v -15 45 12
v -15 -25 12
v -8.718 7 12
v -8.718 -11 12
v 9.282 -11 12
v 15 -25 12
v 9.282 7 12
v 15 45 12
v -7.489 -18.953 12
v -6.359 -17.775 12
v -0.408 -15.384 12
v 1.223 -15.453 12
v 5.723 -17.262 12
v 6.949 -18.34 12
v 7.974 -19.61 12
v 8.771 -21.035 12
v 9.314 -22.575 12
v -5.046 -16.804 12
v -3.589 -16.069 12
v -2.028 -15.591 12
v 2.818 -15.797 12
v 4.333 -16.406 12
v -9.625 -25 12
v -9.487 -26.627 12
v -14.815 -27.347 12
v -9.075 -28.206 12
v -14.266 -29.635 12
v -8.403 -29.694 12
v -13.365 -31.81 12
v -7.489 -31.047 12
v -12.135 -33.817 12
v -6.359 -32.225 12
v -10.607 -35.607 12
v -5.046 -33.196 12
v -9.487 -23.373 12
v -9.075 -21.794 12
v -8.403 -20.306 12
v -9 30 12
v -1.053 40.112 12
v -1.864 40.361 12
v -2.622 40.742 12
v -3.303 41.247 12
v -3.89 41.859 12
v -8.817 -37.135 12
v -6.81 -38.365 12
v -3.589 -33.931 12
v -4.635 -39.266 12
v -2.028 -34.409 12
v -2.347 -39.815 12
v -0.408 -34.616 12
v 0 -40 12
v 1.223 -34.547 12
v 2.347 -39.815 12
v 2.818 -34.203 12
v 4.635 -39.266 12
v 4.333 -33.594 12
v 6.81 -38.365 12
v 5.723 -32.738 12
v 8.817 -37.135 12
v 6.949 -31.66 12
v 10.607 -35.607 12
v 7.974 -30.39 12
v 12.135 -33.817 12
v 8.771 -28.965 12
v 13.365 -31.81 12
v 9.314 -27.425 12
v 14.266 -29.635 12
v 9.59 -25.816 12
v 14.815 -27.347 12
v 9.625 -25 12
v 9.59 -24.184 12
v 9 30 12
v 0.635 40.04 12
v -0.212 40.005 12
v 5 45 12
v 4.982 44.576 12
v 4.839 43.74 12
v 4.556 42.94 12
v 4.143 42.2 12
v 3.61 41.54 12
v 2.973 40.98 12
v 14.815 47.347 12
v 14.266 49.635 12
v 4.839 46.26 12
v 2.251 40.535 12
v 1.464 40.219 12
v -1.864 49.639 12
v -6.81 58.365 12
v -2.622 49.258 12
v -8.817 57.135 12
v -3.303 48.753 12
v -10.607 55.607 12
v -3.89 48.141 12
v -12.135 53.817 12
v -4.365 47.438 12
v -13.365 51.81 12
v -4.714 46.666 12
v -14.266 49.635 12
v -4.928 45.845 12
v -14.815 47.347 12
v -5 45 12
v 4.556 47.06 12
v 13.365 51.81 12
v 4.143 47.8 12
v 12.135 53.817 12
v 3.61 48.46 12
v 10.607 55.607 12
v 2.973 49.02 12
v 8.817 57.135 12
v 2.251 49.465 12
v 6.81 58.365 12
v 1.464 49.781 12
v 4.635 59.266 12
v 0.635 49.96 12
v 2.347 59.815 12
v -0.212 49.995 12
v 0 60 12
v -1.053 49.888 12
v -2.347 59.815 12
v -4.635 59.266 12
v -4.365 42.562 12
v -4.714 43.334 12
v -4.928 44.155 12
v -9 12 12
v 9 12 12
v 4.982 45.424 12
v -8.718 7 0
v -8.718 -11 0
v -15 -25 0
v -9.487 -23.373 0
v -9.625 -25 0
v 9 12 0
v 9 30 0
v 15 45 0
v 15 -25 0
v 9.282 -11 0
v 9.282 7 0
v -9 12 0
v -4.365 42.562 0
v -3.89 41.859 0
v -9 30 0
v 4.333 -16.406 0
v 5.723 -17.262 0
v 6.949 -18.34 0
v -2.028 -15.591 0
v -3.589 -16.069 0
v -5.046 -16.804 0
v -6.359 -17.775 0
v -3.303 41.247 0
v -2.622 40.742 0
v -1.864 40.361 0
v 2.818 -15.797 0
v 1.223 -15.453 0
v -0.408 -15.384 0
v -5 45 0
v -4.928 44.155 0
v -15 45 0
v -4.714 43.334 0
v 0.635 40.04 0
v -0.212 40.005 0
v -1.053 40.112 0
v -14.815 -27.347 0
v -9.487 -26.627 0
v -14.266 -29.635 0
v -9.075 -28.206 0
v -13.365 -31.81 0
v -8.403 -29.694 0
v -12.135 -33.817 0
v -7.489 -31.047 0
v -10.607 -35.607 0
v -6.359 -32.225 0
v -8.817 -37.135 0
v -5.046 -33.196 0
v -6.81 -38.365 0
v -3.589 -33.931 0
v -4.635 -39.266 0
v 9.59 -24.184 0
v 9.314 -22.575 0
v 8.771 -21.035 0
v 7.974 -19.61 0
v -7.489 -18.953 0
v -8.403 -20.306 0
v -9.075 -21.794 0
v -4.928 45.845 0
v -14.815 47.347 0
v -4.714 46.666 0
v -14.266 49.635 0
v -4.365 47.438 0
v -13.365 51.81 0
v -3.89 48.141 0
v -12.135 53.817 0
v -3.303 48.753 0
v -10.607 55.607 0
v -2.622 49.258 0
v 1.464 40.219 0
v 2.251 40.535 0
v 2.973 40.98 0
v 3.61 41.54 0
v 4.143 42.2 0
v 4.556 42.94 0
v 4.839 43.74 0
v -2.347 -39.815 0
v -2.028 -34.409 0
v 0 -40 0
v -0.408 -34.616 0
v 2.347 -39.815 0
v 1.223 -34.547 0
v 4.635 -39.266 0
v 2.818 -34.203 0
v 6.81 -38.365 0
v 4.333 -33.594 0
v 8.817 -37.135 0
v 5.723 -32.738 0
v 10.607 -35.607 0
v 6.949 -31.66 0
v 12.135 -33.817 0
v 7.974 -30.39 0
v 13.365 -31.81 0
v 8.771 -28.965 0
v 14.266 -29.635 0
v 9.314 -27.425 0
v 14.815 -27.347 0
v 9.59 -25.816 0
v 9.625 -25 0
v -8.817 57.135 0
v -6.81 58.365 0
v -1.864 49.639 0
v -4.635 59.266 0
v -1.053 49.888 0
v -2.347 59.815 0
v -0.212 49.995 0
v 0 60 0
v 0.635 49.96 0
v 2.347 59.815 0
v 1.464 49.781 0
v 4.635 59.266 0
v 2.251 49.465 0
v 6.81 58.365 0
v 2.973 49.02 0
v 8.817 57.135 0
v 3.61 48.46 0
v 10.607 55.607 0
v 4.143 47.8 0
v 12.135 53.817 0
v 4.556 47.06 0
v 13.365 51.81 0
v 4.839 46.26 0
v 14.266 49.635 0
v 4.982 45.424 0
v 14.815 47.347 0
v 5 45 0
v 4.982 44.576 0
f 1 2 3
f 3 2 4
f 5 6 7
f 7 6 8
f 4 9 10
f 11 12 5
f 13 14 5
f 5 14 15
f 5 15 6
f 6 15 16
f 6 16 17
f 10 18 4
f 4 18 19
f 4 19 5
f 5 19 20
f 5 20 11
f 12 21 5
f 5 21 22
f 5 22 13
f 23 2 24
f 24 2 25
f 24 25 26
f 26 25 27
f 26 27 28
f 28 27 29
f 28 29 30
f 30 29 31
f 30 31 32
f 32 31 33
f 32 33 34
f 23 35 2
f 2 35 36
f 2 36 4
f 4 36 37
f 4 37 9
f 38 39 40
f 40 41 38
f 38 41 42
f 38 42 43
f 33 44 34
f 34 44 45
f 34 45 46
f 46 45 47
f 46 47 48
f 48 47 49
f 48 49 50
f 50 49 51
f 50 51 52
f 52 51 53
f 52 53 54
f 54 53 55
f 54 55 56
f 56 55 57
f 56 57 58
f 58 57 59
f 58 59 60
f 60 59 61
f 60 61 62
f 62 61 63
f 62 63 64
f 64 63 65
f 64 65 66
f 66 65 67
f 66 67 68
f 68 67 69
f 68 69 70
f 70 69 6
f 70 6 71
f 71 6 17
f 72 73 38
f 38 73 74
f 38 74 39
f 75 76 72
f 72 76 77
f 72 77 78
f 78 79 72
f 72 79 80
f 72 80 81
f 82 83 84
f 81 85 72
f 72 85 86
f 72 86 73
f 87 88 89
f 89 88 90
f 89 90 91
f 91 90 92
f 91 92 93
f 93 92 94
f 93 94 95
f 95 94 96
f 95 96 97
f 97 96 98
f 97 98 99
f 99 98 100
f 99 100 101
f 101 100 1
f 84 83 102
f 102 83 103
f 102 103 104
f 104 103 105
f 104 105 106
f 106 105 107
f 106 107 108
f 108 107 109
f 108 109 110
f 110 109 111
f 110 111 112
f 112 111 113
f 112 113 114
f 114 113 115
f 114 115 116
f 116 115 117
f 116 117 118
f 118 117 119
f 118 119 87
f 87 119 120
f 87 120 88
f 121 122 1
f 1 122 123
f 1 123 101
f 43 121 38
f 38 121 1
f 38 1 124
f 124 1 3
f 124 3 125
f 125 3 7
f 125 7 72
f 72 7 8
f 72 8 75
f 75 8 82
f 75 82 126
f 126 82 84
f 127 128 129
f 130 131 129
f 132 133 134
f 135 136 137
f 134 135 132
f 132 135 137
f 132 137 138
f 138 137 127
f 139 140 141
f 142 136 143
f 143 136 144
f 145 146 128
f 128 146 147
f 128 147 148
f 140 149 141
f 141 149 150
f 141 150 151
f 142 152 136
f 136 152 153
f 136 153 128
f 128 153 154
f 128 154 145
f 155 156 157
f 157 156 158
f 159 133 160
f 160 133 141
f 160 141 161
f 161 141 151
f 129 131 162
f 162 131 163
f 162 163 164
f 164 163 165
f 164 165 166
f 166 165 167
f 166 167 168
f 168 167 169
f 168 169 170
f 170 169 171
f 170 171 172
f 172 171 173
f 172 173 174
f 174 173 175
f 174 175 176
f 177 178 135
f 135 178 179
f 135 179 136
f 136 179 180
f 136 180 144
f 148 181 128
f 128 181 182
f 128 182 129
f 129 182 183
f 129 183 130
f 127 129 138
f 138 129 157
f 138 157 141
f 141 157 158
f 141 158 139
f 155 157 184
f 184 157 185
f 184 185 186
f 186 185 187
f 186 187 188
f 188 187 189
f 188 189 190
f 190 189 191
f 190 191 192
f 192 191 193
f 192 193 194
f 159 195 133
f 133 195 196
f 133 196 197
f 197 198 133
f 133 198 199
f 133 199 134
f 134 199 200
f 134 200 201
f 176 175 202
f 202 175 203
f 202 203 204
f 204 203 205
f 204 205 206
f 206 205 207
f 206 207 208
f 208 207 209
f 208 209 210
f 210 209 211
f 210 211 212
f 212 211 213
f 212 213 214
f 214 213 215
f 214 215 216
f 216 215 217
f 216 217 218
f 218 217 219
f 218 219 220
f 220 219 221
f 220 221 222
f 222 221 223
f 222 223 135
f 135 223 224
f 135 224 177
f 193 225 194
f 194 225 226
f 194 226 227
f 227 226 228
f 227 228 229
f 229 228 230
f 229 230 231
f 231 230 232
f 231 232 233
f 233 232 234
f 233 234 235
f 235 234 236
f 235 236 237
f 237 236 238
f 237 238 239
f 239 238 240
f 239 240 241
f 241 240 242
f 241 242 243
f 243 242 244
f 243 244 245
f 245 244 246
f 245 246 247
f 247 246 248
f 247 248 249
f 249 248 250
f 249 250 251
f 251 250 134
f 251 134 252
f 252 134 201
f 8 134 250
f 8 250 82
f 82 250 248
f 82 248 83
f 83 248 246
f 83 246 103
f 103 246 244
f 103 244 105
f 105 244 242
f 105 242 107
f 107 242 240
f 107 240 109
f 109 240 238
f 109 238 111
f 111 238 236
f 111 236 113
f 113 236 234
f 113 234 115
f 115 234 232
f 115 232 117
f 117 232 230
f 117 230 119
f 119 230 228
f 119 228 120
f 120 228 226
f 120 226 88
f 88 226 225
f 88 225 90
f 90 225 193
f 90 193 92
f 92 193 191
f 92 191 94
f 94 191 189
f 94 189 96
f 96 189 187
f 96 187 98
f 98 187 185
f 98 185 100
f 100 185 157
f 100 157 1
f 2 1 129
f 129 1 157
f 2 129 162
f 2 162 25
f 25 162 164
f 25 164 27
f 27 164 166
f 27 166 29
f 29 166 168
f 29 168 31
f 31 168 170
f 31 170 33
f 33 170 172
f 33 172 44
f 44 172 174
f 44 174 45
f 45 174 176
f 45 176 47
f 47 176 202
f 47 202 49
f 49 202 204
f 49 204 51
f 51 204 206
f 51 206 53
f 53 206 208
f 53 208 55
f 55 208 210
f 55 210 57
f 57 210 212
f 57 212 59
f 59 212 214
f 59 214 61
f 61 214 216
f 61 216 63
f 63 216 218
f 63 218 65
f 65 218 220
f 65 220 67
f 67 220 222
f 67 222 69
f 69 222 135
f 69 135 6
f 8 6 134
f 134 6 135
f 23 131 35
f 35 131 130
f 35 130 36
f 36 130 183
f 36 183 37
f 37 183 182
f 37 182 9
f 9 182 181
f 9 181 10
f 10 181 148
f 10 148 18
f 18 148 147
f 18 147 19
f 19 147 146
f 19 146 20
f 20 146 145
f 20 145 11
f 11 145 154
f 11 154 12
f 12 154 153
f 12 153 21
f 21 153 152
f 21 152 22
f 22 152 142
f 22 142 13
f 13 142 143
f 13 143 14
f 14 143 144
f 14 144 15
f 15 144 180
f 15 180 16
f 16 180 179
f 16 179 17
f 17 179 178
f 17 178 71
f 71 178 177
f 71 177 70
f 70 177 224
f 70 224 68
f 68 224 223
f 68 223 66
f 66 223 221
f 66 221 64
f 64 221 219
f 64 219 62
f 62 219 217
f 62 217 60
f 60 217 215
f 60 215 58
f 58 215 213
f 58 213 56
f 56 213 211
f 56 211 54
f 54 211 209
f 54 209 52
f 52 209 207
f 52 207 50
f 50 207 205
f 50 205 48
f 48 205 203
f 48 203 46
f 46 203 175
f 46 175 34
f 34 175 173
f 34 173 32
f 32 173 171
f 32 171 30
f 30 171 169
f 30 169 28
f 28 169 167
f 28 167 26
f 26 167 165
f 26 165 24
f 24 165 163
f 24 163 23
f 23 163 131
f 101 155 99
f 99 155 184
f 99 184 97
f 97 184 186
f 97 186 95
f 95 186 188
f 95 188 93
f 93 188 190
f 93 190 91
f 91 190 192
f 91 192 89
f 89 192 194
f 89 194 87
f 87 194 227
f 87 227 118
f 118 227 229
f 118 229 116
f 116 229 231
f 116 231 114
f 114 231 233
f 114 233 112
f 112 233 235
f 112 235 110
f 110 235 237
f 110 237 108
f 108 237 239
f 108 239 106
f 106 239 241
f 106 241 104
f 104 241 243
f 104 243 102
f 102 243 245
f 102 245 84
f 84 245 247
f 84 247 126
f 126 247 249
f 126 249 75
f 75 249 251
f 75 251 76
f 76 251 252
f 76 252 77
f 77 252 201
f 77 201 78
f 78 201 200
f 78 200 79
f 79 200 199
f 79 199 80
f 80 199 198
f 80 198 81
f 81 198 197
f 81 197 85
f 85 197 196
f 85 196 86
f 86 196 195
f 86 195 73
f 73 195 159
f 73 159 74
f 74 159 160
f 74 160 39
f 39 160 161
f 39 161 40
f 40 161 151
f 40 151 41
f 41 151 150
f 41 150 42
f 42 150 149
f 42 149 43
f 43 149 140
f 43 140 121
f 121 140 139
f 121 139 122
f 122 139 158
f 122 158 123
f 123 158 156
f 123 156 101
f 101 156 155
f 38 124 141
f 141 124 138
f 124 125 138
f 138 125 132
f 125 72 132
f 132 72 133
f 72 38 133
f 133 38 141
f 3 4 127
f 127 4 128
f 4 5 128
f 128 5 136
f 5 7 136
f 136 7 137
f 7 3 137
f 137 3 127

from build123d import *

# Parameters (mm, degrees)
SKETCH1_R           = 9.625
SKETCH1_R_2         = 5
SKETCH1_W           = 18
SKETCH1_H           = 18
BOSS_EXTRUDE1_DEPTH = 12


with BuildPart() as part:
    # Sketch1 → Boss-Extrude1 (new body)
    with BuildSketch(Plane.XY):
        with BuildLine():
            Line((15, 45), (15, -25))
            ThreePointArc((15, -25), (0, -40), (-15, -25))
            Line((-15, -25), (-15, 45))
            ThreePointArc((-15, 45), (0, 60), (15, 45))
        make_face()
        with Locations((0, -25)):
            Circle(SKETCH1_R, mode=Mode.SUBTRACT)
        with Locations((0, 45)):
            Circle(SKETCH1_R_2, mode=Mode.SUBTRACT)
        with Locations((0, 21)):
            Rectangle(SKETCH1_W, SKETCH1_H, mode=Mode.SUBTRACT)
        with Locations((0.28234497, -2)):
            Rectangle(SKETCH1_W, SKETCH1_H, mode=Mode.SUBTRACT)
    extrude(amount=BOSS_EXTRUDE1_DEPTH)


solid = part.part
